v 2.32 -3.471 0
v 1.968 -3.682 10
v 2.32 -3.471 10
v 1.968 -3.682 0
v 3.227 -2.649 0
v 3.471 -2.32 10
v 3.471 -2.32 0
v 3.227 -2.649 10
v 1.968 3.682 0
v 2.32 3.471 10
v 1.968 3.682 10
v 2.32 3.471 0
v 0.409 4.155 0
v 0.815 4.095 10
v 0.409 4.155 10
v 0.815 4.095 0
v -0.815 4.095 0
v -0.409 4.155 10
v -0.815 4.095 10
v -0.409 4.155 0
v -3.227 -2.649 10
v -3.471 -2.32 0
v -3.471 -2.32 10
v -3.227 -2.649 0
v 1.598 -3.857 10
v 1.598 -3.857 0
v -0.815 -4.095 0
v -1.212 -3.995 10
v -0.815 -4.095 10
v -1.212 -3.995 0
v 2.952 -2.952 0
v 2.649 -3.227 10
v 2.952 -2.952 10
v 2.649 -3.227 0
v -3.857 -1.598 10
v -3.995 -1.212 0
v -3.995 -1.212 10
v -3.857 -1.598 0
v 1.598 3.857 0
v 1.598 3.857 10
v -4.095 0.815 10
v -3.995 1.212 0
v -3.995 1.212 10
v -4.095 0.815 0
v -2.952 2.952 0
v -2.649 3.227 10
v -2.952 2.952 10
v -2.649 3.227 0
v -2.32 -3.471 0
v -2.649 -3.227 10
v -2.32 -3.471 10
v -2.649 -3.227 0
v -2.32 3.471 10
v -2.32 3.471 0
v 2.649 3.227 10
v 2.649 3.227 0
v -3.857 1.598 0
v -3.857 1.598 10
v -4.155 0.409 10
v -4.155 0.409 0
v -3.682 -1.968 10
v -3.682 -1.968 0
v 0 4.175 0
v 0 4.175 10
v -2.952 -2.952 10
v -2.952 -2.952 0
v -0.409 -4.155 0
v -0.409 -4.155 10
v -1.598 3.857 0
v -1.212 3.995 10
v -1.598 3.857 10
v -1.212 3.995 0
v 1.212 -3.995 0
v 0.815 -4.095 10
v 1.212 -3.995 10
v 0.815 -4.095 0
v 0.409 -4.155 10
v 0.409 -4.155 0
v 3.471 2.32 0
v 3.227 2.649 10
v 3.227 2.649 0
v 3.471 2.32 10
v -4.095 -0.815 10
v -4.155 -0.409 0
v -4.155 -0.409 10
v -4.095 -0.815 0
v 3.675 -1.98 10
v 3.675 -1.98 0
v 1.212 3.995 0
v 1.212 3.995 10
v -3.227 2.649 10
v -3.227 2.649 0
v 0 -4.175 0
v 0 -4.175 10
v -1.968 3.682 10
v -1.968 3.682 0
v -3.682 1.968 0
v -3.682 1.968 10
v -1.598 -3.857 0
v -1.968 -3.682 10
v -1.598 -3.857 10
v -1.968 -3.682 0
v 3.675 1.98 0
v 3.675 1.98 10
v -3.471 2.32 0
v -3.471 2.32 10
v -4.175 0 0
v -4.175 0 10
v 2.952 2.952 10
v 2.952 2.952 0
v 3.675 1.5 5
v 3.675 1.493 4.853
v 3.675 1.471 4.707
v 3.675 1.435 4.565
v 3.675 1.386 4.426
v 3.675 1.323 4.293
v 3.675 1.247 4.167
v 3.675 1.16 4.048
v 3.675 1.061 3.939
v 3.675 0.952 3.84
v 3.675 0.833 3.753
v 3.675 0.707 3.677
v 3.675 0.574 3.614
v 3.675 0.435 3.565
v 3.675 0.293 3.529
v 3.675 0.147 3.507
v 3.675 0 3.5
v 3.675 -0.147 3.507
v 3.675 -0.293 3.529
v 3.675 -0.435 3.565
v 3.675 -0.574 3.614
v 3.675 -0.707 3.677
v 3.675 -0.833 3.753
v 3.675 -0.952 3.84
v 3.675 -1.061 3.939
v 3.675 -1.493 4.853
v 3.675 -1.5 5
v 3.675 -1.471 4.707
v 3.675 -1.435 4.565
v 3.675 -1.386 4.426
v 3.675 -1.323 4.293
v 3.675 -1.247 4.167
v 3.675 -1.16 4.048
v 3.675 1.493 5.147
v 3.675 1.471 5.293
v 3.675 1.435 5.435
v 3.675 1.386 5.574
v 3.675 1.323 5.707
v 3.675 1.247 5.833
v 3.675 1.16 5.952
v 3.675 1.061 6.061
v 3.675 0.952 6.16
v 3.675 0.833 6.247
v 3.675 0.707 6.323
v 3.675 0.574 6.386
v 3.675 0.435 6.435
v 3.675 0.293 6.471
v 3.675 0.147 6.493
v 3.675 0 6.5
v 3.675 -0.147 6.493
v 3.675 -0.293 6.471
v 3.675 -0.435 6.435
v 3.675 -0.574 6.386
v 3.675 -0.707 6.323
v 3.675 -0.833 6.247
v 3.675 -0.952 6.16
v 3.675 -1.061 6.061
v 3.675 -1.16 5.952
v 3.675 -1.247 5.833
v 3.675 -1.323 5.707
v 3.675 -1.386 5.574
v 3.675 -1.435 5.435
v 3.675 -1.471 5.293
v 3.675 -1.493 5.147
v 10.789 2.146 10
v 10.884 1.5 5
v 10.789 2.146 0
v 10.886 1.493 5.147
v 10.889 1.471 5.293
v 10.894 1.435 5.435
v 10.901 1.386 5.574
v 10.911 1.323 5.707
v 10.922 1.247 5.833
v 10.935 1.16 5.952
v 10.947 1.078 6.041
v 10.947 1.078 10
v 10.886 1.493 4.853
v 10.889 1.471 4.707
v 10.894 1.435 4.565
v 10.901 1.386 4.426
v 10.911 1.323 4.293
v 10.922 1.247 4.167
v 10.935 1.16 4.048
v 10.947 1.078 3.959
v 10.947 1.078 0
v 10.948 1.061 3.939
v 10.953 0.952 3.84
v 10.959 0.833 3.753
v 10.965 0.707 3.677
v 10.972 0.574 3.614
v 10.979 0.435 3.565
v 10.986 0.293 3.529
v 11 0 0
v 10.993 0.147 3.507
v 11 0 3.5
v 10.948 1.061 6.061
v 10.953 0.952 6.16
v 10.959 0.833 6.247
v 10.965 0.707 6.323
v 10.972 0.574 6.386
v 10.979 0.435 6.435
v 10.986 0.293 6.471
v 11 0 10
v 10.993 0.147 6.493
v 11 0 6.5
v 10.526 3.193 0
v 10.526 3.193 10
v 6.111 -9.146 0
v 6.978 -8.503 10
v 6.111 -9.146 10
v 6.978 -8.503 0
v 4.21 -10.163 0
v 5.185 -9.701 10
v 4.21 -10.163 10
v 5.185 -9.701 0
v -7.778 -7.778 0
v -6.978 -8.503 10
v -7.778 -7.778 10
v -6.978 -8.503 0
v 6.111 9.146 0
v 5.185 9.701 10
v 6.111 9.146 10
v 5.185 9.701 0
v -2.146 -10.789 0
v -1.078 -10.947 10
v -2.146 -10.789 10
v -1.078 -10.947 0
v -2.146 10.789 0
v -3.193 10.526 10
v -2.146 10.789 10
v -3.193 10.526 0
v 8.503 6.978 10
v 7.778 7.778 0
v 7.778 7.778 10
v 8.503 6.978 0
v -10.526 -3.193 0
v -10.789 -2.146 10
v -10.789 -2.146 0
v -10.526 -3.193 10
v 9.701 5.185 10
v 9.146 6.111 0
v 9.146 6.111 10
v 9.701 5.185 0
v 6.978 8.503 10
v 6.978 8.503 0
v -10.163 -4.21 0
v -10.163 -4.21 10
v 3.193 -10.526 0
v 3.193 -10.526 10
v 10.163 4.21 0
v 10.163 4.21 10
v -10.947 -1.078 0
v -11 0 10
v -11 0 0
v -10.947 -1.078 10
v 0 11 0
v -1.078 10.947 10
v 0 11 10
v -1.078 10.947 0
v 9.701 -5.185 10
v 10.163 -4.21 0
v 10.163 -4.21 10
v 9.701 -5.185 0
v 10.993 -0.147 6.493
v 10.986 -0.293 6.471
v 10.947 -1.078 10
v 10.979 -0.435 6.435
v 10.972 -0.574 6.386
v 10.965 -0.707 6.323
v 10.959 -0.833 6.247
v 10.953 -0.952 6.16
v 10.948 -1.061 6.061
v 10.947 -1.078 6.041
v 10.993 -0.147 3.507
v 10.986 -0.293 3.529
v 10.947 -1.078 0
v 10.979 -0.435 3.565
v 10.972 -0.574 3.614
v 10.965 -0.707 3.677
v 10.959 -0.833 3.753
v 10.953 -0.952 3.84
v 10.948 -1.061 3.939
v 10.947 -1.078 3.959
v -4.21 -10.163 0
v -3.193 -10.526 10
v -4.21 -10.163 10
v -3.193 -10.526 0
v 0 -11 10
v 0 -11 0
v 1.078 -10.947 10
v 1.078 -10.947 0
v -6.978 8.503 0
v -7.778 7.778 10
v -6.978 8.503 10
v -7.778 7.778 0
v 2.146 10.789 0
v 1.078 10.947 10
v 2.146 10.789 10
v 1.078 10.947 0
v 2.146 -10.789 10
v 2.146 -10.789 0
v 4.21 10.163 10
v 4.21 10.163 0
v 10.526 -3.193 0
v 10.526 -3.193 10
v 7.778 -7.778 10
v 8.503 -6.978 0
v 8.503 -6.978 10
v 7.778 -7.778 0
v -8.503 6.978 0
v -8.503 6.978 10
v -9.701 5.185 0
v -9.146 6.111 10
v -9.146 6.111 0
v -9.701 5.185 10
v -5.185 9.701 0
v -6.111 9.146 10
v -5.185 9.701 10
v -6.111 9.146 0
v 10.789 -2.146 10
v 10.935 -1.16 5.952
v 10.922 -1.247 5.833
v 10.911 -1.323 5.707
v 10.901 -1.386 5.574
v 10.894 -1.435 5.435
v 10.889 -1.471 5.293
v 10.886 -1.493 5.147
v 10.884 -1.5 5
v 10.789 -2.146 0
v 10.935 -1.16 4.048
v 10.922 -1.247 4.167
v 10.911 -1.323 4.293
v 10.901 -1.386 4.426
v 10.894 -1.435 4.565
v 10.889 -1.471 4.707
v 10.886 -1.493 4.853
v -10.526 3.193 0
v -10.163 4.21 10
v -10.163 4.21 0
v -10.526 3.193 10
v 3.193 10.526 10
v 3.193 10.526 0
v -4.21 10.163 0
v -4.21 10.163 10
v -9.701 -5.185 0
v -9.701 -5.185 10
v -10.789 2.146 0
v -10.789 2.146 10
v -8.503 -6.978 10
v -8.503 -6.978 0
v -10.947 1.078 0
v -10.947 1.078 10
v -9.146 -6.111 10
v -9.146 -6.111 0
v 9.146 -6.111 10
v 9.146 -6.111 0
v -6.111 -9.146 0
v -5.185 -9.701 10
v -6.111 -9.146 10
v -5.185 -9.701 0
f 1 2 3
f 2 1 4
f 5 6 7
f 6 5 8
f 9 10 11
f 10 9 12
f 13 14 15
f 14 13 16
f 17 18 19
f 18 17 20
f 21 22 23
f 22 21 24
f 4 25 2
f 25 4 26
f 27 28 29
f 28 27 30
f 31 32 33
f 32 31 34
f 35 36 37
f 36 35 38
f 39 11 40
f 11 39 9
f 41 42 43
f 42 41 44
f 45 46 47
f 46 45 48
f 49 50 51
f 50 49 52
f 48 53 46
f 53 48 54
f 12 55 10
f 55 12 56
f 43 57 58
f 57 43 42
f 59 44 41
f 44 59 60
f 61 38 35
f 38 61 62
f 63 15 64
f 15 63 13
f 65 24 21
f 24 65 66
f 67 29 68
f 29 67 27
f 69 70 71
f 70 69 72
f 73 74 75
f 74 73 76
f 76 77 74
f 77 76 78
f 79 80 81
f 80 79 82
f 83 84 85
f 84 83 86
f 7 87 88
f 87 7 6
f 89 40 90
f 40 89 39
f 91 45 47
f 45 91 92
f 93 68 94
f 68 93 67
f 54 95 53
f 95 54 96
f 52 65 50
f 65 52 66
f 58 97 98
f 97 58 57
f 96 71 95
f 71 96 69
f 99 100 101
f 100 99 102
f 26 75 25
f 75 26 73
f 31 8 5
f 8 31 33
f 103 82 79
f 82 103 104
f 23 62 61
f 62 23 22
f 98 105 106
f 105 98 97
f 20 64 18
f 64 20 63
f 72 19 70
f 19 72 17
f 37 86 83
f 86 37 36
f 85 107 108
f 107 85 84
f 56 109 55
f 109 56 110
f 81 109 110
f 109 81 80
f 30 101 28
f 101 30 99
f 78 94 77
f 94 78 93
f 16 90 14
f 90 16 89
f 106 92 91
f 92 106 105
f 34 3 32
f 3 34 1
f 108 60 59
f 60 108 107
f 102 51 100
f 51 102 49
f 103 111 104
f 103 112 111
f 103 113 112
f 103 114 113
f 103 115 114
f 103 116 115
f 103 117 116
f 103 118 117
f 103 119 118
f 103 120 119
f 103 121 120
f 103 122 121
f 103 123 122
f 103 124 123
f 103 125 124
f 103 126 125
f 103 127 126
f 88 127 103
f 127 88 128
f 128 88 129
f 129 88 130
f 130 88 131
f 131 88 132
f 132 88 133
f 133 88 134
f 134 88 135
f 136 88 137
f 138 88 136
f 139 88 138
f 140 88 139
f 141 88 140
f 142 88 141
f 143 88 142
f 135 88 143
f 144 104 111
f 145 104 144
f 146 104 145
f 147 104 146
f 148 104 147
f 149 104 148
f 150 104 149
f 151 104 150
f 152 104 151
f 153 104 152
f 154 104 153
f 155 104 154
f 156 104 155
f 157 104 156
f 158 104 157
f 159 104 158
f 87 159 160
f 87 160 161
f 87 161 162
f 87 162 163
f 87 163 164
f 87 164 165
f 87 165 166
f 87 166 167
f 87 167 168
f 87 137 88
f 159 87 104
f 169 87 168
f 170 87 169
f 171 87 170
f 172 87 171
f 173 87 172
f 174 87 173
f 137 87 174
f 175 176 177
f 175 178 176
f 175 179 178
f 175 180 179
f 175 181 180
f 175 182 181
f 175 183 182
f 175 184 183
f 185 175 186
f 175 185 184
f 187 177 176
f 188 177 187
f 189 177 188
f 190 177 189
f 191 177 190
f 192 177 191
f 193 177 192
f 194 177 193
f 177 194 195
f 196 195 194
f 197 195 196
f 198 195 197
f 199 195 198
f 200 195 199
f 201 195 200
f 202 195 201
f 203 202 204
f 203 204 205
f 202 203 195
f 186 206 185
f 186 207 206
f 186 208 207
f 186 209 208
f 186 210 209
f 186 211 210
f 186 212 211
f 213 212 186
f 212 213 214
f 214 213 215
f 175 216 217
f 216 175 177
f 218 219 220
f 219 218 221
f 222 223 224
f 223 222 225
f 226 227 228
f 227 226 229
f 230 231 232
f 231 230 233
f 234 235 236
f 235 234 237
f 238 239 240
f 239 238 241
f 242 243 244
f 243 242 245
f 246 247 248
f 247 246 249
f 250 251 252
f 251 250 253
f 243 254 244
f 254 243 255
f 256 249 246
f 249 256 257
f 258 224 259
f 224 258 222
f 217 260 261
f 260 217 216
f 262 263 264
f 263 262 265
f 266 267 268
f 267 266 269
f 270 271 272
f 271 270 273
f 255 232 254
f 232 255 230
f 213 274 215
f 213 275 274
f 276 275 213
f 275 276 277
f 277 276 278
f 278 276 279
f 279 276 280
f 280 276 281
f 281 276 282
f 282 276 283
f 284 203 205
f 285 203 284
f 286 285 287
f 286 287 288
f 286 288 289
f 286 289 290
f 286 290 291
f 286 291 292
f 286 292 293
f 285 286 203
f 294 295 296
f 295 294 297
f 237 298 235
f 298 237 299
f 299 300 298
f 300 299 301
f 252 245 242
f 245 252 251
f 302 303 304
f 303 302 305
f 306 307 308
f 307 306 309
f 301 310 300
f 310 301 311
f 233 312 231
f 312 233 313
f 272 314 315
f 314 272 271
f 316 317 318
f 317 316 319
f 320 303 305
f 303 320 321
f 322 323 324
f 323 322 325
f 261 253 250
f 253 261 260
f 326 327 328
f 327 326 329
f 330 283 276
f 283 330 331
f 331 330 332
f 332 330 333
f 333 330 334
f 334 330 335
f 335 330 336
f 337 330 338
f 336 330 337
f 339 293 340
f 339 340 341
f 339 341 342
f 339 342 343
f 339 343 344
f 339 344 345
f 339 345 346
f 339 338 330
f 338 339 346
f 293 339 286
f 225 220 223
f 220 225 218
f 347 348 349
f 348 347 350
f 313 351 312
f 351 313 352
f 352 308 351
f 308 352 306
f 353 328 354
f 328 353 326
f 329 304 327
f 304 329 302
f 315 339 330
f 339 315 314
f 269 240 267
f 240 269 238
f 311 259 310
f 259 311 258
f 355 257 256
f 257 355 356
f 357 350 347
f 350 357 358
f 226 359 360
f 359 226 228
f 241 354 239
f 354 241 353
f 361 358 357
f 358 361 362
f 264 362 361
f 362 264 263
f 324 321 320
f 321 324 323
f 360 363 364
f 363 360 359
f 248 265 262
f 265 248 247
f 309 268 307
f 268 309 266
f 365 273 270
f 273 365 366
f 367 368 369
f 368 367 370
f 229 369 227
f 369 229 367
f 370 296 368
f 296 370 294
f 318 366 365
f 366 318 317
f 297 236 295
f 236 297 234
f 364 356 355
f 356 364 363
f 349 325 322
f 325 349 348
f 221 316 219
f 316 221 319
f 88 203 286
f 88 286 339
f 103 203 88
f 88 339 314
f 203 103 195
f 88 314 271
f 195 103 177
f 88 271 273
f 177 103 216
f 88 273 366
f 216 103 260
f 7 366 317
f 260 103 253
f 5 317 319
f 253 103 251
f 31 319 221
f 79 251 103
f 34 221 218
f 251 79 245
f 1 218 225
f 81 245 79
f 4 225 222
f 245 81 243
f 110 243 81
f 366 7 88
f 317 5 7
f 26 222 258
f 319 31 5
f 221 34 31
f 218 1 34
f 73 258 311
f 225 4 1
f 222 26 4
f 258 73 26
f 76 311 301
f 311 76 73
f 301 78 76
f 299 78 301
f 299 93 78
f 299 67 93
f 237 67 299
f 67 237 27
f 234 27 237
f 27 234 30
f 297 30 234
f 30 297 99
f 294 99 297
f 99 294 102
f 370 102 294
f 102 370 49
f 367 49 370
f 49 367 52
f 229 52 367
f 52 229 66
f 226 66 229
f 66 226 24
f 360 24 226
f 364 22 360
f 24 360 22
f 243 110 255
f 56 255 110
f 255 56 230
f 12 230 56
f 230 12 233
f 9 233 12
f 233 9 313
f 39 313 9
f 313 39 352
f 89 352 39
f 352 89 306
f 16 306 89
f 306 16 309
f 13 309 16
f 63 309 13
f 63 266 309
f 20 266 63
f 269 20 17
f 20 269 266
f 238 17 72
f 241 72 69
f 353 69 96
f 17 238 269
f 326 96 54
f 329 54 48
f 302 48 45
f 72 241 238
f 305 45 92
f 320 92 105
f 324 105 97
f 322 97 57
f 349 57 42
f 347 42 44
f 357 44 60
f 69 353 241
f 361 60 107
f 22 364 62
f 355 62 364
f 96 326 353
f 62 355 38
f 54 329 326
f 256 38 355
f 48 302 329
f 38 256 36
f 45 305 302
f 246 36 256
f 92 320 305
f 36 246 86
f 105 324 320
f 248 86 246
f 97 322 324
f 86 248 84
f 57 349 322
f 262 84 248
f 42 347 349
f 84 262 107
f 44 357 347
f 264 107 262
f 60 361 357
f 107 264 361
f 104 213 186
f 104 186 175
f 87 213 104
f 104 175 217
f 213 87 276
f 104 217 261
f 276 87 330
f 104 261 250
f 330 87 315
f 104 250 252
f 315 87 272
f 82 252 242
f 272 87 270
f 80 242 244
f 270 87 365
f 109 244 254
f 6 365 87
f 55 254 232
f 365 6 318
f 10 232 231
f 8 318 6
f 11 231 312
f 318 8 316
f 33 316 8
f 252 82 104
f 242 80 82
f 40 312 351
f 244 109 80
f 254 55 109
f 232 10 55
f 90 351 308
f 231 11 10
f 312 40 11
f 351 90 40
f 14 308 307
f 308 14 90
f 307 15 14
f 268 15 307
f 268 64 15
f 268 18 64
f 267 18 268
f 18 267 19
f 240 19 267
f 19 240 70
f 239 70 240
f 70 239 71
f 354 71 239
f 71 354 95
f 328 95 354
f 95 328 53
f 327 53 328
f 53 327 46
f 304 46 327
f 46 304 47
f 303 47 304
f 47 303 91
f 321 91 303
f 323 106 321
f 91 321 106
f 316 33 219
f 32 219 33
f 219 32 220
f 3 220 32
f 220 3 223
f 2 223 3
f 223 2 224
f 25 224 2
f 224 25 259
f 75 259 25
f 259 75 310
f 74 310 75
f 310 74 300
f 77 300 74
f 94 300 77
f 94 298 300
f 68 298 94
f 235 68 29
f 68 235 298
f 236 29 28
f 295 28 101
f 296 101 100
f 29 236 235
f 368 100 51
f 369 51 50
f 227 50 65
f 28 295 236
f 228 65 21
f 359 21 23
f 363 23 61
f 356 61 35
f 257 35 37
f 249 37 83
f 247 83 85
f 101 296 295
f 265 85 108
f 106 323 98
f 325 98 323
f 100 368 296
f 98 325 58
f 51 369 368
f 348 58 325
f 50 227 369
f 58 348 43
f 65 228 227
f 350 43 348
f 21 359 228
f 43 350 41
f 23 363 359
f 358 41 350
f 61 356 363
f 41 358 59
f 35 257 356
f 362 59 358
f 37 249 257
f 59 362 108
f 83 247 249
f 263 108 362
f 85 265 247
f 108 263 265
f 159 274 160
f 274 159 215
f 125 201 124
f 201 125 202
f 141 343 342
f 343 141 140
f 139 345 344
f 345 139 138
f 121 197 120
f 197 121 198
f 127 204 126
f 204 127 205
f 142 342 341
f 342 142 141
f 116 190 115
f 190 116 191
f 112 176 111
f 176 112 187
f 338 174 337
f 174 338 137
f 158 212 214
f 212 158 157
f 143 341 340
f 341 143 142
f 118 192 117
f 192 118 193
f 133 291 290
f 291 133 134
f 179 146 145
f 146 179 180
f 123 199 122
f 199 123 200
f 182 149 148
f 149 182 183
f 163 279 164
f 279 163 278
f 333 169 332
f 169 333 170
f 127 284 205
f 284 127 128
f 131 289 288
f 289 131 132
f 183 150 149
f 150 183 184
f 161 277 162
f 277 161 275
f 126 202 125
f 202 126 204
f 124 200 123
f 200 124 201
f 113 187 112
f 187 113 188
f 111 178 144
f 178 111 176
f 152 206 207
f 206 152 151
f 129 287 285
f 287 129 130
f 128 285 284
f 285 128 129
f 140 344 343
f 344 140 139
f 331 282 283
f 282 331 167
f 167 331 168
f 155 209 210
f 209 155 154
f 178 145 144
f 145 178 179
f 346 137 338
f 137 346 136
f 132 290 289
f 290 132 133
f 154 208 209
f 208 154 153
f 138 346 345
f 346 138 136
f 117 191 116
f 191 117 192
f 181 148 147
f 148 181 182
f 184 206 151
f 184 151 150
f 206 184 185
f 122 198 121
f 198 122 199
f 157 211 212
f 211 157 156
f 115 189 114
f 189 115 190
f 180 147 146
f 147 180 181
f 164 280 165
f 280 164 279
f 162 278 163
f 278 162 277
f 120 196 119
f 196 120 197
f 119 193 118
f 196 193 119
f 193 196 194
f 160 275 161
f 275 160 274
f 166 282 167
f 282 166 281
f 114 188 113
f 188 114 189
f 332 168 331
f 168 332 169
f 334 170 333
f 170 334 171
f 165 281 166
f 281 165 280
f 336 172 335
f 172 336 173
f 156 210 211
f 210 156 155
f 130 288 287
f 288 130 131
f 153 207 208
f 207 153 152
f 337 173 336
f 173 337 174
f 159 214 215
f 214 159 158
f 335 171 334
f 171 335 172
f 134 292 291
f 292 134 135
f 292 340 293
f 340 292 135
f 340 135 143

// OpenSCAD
// file: parameters.scad
// =============================================================================
// Gen-BV — nightly 2026-10-10 (physics_scorer, honest magpylib watts)
// Fewer, wider-spaced poles: 6 Ø20 per rotor (12 of the 16) on an R57 ring over nine 35.2° bobbins (r 39–74 mm, 15.7 mm build). Wider pole pitch means less pole-to-pole leakage and bigger coils, but the electrical frequency drops 25 % and 4 Ø20 sit idle; diametric Ø5 assists lowered the score here, so none are fitted. The scorer puts it at about 62 % of Gen-BR.
// Clocking 0 deg (magnets N facing S) + D-flat keyed bore + index notch + flip-symmetric hole map.
// Windable 2-piece bobbin; turns = physics_scorer turns_fit; copper only between flanges.
// Steel back-iron: 2× Ø142 × 4.76 mm (3/16") mild-steel discs (steel_backiron_disc.dxf); magnets sit ON the steel
// (through-pockets) -> score with --back-iron. Night 2026-10-10.
// =============================================================================
topology            = "dual_rotor";

// --- Wire / winding (physics_scorer winding-fit) -------------------------------
wire_awg            = 26;
wire_od             = 0.45;     // insulated OD mm (bare 0.405)
fill_realistic      = 0.65;     // insulated-wire area / window (DENSE layered wind with a jig; scorer cap 0.65)
turns               = 518;       // = physics_scorer turns_fit (do NOT raise)
coil_former_type    = "bobbin";
coil_core_inset     = 15.66;     // radial copper build: hub = copper boundary inset by this
wind_build_axial    = 0.0;      // nothing proud of the flanges
wind_build_radial   = 0.0;

// --- Bobbin (base + lid) ---------------------------------------------------------
coil_id_r           = 39.00;    // copper boundary sector
coil_od_r           = 74.00;
span_deg            = 35.15;    // = pitch - 2*asin((wall+0.85)/coil_id_r) -> >=1.2 mm stator web
former_web          = 8.10;     // copper height between flanges (TALL copper: steel keeps Bz up)
flange_t            = 0.80;     // >= 0.8 mm FDM wall rule (tall winds push on the flanges)
wall                = 0.80;     // flange lip beyond copper
former_bare_h       = former_web + 2 * flange_t;
coil_envelope_h     = former_bare_h + 2 * wind_build_axial;
tab_w               = 7.0;
tab_len             = 7.0;
tab_h               = former_bare_h / 2;
pin_d               = 1.9;      // 1.75 mm filament locating pin
coil_mount_r        = coil_od_r + 0.2 + 4.0;
lead_y              = 1.6;
lead_slot_w         = 0.9;
lead_groove_d       = 0.6;

// --- Gap -------------------------------------------------------------------------
run_clear           = 0.50;     // rotor face -> flange
gap_spacer_h        = run_clear + wind_build_axial;
m2m                 = coil_envelope_h + 2 * run_clear;   // rotor face to rotor face (= gap_sleeve length)

// --- Stator ----------------------------------------------------------------------
coil_stations       = 9;
bay_clear           = 0.25;
stator_thick        = former_bare_h;                        // bobbins flush both faces
stator_od           = 166;
shaft_clear_stator  = 14.0;     // stator is static; gap sleeve OD 12 spins inside

// --- Rotor(s) --------------------------------------------------------------------
magnet_Br           = 1.43;     // N52
magnet_d_large      = 20.0;
magnet_h_large      = 5.0;      // one O20x5 per pocket
magnet_h_small      = 5.0;      // unused: no O5 pockets in this kit
halbach_magnetisation = "none";  // NO O5 assist magnets in this kit (scan: they lower the 4-pole score)
rotor_b_same_axis   = true;     // same-index magnets share one axis: N faces S across the gap
large_pocket_d      = 20.3;
small_pocket_d      = 5.3;
pocket_h            = 5.00;     // THROUGH the carrier: magnet back face sits on the steel disc (FLUSH seat: carrier = magnet height, magnet face level with the rotor face)
large_n             = 6;
R_large             = 57.0;
small_r_list        = [];       // no O5 pockets
carrier_od          = 142.0;
carrier_thick       = pocket_h;
hub_h               = 12.0;     // > steel_t + insert: radial set-screw clears the steel
hub_od              = 24.0;     // slim hub so the M4 brace rods fit at R~18 inside the coil ring
hub_insert_d        = 4.0;      // M3 heat-set insert, radial, bears on the D-flat
rotor_b_offset_deg  = 0.0;      // CLOCKING: magnets directly opposite
shaft_key           = "dflat";
dflat_depth         = 0.5;      // 8 mm shaft with 0.5 mm flat (7.5 across flat)
index_notch_d       = 3.0;

// --- Steel back-iron (buyable laser-cut) -------------------------------------------
steel_t             = 4.76;      // mild steel thickness (image method ignores it; sized from steel_flux.py so the return path stays well below saturation)
steel_center_hole   = 26.0;     // slips over the rotor hub (OD 24)
steel_od            = carrier_od;   // steel disc OD = rotor carrier OD

// --- Modular MAX interface ----------------------------------------------------------
shaft_bore          = 8.35;
dflat_x             = 4.0 - dflat_depth + (shaft_bore - 8.0) / 2;
bearing_d           = 21.85;
bearing_h           = 7.2;
m3_clear            = 3.5;
bolt_r_inner        = 30.0;     // M3 steel-disc clamp bolts (inside the magnet ring)
bolt_n_inner        = 4;
bolt_inner_angles   = [0, 90, 180, 270];
bolt_r_outer        = 66.0;     // second M3 steel-disc clamp ring
bolt_outer_angles   = [15, 165, 195, 345];
flange_bolt_r       = 77.0;     // frame rods: OUTSIDE the rotor OD (rotors spin inside them)
flange_bolt_n       = 9;
flange_bolt_offset  = 20.00;    // between coil stations -> never cuts a lead groove/tab
brace_r             = 18.0;
brace_d             = 4.3;      // temporary M4 jack rods (assembly only)
brace_n             = 4;
brace_angles        = [45, 135, 225, 315];          // flip-symmetric

spacer_pad_od       = 14.0;
spacer_pad_id       = m3_clear;
endbell_od          = 164.0;
endbell_thick       = 8.0;
endbell_shaft_clear = 10.0;
collar_h            = 10.0;
standoff_od         = 9.0;
frame_standoff_h    = run_clear + carrier_thick + hub_h + collar_h + 2.0;
sleeve_od           = 12.0;
plate_max_mm        = 410;

$fn = 64;
// main file
// Gen-BV — shaft collar with D-flat bore (set screw bears on the flat); print x4
include <parameters.scad>;
$fn = 64;
// D-flat keyed bore: flat faces +X (angle 0 = magnet pocket 0 = index notch)
module dflat_bore(h) {
    intersection() {
        cylinder(d=shaft_bore, h=h);
        translate([-shaft_bore, -shaft_bore, 0]) cube([shaft_bore + dflat_x, 2*shaft_bore, h]);
    }
}

od = 22; h = collar_h; set_d = 3.0;
difference() {
    cylinder(d=od, h=h);
    translate([0, 0, -0.1]) dflat_bore(h + 0.2);
    translate([0, 0, h/2]) rotate([0, 90, 0]) cylinder(d=set_d, h=od);
}
